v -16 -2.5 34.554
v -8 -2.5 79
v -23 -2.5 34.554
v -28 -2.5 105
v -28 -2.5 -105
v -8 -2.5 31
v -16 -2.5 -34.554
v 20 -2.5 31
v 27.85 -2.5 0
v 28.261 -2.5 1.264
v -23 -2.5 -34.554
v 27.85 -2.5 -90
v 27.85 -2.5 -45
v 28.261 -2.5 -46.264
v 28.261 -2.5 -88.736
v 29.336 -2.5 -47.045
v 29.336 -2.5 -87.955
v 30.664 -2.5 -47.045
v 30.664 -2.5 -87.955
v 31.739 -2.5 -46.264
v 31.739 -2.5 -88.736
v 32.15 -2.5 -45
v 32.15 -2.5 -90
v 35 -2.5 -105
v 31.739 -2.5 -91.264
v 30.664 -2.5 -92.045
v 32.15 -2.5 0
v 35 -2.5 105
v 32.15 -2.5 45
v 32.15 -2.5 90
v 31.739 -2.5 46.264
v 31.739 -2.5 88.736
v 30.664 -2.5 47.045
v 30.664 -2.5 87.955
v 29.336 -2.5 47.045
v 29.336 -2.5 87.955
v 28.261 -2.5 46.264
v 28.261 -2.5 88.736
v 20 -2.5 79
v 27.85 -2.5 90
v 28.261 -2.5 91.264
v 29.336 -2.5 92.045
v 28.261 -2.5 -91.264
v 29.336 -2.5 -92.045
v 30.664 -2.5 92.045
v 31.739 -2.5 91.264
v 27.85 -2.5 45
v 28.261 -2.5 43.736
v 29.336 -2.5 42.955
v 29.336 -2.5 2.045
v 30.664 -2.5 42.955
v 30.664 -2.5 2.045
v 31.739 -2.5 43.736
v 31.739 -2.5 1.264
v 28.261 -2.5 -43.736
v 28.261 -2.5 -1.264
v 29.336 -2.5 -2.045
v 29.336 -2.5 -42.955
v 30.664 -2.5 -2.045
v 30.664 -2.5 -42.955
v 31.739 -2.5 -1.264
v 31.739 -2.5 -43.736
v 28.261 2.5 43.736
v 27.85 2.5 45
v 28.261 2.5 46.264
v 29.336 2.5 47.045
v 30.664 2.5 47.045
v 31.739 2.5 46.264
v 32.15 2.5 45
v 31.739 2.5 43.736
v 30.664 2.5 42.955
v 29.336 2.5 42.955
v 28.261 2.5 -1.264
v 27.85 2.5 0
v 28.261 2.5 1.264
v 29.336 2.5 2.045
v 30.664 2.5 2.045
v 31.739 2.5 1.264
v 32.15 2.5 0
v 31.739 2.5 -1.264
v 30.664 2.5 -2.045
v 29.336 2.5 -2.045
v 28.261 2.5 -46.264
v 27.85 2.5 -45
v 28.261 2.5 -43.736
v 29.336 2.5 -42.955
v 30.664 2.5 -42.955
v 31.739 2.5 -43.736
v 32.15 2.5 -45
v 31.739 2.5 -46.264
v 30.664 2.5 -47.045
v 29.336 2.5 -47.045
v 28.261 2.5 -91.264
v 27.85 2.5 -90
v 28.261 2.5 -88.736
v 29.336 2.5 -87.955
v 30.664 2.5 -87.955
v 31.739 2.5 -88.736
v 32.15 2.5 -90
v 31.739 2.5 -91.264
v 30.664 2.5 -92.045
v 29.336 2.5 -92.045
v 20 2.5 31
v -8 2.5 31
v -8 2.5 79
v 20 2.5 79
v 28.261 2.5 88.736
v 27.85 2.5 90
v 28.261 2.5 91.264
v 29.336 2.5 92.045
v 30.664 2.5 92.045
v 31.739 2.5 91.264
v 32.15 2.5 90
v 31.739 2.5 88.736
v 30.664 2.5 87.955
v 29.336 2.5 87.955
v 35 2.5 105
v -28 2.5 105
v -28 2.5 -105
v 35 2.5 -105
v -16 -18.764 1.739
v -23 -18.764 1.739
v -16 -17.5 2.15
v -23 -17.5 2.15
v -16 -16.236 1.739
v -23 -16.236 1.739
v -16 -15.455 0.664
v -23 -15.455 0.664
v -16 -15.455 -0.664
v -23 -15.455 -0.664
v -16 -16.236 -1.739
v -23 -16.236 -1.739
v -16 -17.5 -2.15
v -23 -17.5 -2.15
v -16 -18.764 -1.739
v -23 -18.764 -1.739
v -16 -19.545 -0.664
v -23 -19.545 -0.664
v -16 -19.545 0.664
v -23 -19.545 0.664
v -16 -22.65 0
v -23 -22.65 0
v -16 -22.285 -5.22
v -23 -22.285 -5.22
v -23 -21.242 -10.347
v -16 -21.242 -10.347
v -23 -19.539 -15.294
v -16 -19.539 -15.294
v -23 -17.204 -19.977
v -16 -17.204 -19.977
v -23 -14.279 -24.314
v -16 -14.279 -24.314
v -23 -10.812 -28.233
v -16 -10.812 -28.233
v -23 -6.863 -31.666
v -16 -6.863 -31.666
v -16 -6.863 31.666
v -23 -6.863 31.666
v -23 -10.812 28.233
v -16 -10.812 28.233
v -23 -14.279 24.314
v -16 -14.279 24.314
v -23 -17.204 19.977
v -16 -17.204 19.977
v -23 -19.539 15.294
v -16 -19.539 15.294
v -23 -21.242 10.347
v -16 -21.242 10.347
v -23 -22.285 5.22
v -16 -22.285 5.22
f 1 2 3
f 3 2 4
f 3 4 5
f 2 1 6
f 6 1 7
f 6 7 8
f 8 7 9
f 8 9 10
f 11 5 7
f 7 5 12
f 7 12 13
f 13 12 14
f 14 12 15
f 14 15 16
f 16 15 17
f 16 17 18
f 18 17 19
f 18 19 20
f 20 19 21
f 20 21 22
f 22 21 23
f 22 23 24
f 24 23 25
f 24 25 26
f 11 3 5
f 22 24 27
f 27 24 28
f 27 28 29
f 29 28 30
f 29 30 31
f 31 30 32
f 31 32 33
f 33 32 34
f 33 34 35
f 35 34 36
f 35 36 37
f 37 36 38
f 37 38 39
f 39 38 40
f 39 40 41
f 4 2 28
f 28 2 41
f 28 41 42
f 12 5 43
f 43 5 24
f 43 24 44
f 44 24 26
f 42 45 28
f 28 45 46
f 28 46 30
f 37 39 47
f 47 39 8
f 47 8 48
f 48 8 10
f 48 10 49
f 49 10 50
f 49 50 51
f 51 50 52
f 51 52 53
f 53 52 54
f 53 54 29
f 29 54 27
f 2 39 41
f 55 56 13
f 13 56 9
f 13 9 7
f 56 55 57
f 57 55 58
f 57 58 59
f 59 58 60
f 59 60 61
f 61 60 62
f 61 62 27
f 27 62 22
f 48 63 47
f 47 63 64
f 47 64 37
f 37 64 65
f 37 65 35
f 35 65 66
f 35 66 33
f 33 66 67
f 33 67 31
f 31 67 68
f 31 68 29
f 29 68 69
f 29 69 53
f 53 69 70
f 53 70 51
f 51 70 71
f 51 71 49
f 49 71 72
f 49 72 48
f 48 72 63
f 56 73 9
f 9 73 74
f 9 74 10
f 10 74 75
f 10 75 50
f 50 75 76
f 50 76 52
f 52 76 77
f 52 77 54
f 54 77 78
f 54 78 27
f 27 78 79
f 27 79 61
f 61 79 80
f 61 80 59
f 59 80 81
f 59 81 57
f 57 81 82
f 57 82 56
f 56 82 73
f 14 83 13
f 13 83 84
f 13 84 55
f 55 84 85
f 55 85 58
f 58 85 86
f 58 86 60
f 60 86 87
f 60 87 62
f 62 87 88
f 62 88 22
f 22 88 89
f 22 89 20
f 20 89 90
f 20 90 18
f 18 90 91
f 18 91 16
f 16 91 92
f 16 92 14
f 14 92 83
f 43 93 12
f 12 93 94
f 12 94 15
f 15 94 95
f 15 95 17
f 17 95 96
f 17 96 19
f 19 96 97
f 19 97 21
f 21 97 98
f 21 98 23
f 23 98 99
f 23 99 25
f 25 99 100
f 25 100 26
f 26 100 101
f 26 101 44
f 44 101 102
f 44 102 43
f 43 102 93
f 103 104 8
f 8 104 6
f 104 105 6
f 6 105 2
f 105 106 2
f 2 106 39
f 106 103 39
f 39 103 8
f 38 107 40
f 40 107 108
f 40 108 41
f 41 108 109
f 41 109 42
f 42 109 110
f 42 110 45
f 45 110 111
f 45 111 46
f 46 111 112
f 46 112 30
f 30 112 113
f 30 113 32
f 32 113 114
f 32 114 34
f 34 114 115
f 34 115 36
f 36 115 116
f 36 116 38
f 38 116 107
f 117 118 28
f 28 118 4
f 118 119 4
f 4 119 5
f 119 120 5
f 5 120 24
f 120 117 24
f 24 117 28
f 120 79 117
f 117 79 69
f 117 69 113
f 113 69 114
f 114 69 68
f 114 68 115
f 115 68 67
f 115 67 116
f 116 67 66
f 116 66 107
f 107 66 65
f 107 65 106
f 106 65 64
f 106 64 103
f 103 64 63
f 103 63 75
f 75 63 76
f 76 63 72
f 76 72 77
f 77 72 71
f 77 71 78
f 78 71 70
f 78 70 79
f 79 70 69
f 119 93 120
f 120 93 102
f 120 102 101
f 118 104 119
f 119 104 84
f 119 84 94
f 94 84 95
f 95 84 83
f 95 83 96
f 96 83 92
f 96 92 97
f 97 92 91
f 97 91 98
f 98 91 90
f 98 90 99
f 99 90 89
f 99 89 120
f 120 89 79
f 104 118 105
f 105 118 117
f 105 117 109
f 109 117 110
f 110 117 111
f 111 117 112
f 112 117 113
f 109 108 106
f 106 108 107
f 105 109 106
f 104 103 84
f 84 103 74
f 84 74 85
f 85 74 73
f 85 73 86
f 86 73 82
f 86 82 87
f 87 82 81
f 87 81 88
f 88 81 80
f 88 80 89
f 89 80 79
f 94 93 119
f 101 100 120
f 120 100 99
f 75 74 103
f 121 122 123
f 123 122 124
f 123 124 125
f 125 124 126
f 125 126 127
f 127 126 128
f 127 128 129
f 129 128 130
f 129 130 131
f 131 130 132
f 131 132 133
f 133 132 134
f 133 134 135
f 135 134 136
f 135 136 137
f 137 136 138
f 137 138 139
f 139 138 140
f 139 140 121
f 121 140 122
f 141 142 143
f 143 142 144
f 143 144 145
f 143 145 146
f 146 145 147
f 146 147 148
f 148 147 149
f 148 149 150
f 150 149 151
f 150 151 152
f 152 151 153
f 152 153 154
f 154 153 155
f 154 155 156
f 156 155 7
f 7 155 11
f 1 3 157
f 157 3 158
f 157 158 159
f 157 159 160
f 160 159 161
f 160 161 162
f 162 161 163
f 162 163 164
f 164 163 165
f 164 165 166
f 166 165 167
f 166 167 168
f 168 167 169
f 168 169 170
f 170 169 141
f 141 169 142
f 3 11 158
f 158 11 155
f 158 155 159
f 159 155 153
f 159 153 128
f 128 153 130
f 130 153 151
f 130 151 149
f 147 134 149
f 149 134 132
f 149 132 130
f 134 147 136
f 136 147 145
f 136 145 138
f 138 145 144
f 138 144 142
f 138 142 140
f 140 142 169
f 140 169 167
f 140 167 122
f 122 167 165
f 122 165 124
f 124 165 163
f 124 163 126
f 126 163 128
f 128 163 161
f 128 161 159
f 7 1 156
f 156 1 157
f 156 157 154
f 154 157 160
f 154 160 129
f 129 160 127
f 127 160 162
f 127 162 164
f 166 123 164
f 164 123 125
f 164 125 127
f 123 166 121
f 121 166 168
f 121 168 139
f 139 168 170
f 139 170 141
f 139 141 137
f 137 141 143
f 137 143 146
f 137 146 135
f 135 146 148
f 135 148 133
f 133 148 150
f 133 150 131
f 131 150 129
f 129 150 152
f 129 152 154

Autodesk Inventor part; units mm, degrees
ref_plane "YZ Plane" through (0, 0, 0) normal (1, 0, 0) x (0, 1, 0)
sketch "Szkic1" plane through (0, 0, 0) normal (0, 1, 0) x (-1, 0, 0)
  line L0 (-35, 105) -> (35, 105)
  line L1 (35, 105) -> (35, -105)
  line L2 (35, -105) -> (-35, -105)
  line L3 (-35, -105) -> (-35, 105)
  line L4 (-35, 105) -> (35, -105) construction
  line L5 (35, 105) -> (-35, -105) construction
  line L6 (-35, 105) -> (-25, 105)
  line L7 (-30, 105) -> (-30, 90)
  line L8 (35, 105) -> (28, 105)
  line L9 (28, 105) -> (28, -105)
  line L10 (35, -105) -> (28, -105)
  circle A0 centre (-30, 90) radius 2.15
  circle A1 centre (-30, 45) radius 2.15
  circle A2 centre (-30, 0) radius 2.15
  circle A3 centre (-30, -45) radius 2.15
  circle A4 centre (-30, -90) radius 2.15
  line L11 (-35, 105) -> (-35, 55)
  line L12 (-35, 55) -> (-6, 55)
  line L13 (-20, 79) -> (8, 79)
  line L14 (8, 79) -> (8, 31)
  line L15 (8, 31) -> (-20, 31)
  line L16 (-20, 31) -> (-20, 79)
  line L17 (-20, 79) -> (8, 31) construction
  line L18 (8, 79) -> (-20, 31) construction
  point P0 (0, 0)
  point P1 (0, 0)
  dimension "d4" = 70
  dimension "d5" = 210
  dimension "d6" = 10
  dimension "d7" = 15
  dimension "d8" = 7
  dimension "d9" = 4.3
  dimension "d10" = 45
  dimension "d12" = 50
  dimension "d13" = 29
  dimension "d14" = 28
  dimension "d15" = 48
extrude "Wyciągnięcie proste1" add sketch "Szkic1" along normal mid plane 5 contours L0 L9 L2 L3
ref_plane "Płaszczyzna konstrukcyjna1" through (30, -2.5, -105) normal (1, 0, 0) x (0, 0, -1)
ref_plane "Płaszczyzna konstrukcyjna2" through (-23, -2.5, 105) normal (-1, 0, 0) x (0, 0, 1)
sketch "Szkic3" plane through (-23, -2.5, 105) normal (-1, 0, 0) x (0, 0, 1)
  line L0 (-224.7917, 43.2301) -> (-14.7917, 43.2301)
  line L1 (-224.7917, 43.2301) -> (-14.7917, 43.2301)
  line L2 (-119.7917, 43.2301) -> (-119.7917, 58.2301)
  circle A0 centre (-119.7917, 58.2301) radius 2.15
  line L3 (-119.7917, 60.3801) -> (-119.7917, 63.3801)
  line L4 (-150.7917, 43.2301) -> (-198.7917, 43.2301)
  arc A1 (-119.7917, 63.3801) -> (-154.3457, 43.2301) centre (-119.6183, 23.3805) ccw
  arc A2 (-85.2378, 43.2301) -> (-119.7917, 63.3801) centre (-119.9652, 23.3805) ccw
  line L5 (-154.3457, 43.2301) -> (-85.2378, 43.2301)
  line L6 (-210, 0) -> (-210, 5) projected
  line L7 (-210, 0) -> (0, 0) projected
  line L8 (-210, 0) -> (0, 0)
  line L9 (-105, 0) -> (-105, -15)
  circle A3 centre (-105, -15) radius 2.15
  line L10 (-105, -17.15) -> (-105, -20.15)
  arc A4 (-139.554, 0) -> (-105, -20.15) centre (-104.8266, 19.8496) ccw
  arc A5 (-105, -20.15) -> (-70.446, 0) centre (-105.1734, 19.8496) ccw
  line L11 (-70.446, 0) -> (-139.554, 0)
  point P0 (-105, 2.5)
  point P1 (-119.7917, 40.7301)
  point P2 (-70.446, 0)
  point P3 (-139.554, 0)
  dimension "d26" = 4.3
  dimension "d31" = 4.3
  dimension "d25" = 15
  dimension "d27" = 3
  dimension "d28" = 40
  dimension "d29" = 40
  dimension "d30" = 15
  dimension "d32" = 3
  dimension "d33" = 40
  dimension "d34" = 40
extrude "Wyciągnięcie proste2" add sketch "Szkic3" against normal blind 7 contours L7 L9 A3 L10 A4 | L7 A5 L10 A3 L9
properties part number "podstawa_sciana_tyl"
